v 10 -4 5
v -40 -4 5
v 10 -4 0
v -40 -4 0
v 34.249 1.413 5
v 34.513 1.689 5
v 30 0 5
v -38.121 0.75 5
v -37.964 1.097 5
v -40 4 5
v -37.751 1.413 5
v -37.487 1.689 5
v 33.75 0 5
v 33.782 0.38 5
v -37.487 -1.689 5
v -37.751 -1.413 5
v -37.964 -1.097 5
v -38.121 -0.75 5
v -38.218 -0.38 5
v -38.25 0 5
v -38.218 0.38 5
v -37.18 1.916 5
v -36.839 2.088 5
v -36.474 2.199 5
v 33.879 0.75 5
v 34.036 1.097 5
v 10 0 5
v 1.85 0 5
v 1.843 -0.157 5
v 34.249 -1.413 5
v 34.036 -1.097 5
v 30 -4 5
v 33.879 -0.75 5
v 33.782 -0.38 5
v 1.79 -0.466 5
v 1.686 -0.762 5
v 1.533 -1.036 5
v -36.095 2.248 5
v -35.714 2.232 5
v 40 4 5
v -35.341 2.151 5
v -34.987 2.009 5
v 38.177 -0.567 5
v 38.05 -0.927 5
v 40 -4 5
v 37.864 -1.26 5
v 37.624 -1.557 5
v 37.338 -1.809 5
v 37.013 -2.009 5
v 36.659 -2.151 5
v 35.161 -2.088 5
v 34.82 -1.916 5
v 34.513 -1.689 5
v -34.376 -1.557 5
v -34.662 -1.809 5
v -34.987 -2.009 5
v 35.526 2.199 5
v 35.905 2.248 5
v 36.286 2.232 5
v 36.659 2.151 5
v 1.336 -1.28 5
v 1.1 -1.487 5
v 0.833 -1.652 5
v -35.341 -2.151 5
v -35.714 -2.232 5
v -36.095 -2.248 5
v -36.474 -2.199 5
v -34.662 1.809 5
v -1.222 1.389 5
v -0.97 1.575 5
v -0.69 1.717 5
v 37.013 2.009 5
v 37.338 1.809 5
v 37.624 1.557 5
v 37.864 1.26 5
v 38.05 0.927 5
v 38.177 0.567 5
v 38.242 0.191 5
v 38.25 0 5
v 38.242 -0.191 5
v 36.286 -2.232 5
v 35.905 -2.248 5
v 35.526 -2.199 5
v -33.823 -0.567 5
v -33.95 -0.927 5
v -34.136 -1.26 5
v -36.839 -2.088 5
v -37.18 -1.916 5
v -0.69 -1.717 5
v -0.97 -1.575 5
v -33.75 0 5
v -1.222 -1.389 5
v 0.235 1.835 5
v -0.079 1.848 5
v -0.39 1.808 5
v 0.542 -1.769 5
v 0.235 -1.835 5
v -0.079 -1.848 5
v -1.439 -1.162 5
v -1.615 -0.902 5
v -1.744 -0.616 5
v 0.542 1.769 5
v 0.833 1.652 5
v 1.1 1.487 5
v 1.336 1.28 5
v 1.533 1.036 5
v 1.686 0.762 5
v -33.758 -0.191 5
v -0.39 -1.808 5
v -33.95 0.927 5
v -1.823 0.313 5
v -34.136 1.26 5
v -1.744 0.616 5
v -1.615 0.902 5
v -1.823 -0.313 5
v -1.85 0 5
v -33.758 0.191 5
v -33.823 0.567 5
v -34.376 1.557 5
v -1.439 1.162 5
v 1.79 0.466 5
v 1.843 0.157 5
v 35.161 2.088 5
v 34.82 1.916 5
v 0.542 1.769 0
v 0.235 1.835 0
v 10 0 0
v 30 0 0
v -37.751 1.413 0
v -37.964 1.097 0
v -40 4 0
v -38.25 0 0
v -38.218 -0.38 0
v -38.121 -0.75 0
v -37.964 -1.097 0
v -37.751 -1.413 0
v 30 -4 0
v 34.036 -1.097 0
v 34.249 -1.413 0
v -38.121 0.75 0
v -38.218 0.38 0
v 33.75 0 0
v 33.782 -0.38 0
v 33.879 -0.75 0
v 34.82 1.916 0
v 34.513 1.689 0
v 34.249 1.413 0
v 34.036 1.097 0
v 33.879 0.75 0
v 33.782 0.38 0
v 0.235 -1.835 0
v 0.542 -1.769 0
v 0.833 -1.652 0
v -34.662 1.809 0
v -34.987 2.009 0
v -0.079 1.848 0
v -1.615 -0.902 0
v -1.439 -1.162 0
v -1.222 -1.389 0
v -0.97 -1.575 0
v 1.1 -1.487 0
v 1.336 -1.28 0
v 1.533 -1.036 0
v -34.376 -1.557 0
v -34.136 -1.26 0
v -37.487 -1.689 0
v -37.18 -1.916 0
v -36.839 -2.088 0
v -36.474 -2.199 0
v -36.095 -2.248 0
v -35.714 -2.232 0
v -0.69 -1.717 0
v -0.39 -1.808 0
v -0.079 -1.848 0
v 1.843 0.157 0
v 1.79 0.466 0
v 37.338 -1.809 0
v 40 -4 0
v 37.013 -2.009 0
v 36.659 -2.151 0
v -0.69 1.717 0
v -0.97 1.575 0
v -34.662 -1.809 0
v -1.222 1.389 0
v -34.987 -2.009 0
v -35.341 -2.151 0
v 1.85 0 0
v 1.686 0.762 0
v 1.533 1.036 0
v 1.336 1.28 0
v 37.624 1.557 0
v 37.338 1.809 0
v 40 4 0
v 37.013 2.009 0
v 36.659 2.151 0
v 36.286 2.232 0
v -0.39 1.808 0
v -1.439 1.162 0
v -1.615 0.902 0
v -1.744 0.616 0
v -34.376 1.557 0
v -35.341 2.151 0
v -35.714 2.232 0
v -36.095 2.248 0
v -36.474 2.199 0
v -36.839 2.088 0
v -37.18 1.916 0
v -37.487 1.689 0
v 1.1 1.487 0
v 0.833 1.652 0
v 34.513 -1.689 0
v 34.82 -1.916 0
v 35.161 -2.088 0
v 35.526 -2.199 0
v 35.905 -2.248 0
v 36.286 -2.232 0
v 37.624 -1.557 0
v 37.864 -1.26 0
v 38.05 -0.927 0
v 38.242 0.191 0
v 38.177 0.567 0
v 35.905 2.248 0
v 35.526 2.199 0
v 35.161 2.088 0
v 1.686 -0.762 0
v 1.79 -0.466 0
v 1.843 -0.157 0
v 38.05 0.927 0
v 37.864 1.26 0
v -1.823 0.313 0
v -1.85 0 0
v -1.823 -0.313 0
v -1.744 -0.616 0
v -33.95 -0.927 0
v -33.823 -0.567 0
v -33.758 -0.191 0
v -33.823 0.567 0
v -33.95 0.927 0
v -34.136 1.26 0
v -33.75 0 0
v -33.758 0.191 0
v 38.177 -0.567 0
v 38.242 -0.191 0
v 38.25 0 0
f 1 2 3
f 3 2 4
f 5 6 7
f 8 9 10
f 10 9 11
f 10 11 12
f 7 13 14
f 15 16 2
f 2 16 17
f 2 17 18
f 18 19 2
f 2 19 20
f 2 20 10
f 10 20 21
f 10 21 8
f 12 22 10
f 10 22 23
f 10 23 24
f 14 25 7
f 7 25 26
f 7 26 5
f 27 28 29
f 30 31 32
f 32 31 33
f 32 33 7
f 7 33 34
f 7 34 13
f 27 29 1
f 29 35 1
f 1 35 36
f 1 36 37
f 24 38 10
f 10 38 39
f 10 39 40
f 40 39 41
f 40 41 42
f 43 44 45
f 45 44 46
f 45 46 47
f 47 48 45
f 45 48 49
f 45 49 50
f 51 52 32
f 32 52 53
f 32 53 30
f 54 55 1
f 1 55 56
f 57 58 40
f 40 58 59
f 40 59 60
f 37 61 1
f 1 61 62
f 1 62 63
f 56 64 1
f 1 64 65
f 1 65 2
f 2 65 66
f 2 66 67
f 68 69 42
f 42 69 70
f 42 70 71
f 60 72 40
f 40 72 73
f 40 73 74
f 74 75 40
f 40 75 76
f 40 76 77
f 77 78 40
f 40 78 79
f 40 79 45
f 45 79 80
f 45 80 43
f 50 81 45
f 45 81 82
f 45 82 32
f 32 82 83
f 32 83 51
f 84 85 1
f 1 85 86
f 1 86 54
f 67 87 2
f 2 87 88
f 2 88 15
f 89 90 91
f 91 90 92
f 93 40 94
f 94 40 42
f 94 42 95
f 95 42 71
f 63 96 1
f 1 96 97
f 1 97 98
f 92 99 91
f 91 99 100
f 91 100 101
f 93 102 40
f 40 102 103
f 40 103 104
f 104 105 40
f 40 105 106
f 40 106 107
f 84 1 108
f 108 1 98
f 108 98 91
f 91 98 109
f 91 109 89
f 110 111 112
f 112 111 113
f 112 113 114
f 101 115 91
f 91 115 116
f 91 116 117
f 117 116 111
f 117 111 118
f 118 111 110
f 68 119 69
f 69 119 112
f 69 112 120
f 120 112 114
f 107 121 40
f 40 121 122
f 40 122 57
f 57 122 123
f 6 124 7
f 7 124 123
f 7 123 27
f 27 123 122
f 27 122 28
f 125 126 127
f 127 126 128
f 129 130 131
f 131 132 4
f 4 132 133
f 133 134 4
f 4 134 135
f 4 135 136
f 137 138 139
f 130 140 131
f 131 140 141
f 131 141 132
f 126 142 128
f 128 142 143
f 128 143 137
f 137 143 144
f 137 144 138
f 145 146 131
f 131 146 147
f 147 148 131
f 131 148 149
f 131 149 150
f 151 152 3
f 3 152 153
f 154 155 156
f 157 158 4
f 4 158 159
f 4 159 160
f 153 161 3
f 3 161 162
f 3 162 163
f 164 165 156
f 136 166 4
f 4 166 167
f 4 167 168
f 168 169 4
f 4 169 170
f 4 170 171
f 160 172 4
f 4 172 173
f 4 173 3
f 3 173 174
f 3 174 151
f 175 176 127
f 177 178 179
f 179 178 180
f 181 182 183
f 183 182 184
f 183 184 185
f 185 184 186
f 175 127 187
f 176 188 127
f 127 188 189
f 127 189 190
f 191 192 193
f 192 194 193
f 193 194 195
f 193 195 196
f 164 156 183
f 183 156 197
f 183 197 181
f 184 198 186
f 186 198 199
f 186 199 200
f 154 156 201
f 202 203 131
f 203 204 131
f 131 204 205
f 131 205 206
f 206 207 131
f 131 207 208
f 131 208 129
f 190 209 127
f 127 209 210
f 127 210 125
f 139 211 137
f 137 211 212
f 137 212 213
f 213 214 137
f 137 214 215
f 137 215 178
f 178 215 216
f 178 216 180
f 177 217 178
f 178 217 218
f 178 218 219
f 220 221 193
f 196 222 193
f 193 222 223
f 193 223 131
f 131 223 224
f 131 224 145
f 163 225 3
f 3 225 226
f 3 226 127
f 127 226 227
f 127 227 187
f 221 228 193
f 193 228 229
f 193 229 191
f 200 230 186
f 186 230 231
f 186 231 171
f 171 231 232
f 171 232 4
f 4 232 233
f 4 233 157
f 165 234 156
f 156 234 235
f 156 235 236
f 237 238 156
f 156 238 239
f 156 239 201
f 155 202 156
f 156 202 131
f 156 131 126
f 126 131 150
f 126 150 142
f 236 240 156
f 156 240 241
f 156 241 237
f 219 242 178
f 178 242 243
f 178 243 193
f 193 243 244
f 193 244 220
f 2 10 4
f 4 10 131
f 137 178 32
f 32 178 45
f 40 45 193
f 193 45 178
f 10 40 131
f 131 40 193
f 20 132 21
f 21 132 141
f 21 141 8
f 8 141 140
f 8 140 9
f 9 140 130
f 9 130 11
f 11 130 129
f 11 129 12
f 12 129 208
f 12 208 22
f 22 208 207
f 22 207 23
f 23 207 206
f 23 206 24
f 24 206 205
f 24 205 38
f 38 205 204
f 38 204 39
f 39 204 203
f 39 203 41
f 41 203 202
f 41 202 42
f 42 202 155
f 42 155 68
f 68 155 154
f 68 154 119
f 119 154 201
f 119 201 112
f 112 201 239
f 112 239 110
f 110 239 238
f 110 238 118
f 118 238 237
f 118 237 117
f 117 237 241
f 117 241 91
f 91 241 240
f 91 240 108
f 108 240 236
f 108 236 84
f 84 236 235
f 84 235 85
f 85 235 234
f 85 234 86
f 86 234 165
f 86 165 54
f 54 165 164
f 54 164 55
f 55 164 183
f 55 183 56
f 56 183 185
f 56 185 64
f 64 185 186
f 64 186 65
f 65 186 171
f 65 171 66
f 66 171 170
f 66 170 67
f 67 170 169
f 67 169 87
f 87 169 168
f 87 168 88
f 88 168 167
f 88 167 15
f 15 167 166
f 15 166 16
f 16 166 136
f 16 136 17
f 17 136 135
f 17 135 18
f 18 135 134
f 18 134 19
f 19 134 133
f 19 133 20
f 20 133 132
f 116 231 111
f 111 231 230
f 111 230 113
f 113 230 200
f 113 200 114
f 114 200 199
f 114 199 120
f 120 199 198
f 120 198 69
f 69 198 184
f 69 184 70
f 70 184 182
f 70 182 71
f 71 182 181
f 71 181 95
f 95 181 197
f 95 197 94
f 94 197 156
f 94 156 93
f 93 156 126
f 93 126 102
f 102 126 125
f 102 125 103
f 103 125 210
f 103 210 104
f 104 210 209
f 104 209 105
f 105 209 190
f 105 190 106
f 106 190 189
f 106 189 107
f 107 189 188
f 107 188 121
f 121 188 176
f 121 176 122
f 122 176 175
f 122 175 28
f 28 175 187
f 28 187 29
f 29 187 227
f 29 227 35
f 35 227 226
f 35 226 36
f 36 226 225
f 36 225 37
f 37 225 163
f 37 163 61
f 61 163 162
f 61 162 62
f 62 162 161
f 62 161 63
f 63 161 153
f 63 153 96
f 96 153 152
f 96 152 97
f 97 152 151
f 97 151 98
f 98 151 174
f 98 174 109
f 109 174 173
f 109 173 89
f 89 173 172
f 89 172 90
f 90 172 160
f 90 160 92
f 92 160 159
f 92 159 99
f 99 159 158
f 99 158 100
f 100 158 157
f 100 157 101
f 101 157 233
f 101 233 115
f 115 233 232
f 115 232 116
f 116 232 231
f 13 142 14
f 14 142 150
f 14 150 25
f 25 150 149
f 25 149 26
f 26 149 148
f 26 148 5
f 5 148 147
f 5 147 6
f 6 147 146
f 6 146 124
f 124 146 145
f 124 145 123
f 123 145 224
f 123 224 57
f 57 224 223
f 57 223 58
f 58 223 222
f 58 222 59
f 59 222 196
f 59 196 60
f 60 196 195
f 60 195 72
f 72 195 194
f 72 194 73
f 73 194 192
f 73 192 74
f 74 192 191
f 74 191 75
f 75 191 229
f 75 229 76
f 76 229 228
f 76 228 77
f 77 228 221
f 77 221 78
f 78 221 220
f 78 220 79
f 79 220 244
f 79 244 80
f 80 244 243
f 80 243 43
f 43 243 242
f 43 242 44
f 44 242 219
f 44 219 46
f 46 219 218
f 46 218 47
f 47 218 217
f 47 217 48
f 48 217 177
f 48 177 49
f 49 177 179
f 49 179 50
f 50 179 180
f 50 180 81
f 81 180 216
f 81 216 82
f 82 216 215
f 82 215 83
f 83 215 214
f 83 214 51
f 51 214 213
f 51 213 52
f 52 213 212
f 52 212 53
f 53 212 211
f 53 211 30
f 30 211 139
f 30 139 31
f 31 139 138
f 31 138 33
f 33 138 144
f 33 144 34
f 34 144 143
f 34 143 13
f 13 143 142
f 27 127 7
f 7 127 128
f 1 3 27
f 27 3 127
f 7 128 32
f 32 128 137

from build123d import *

# Parameters (mm, degrees)
SCHIZZO1_W                   = 80
SCHIZZO1_H                   = 8
SCHIZZO1_R                   = 2.25
SCHIZZO1_R_2                 = 1.85
ESTRUSIONE_ESTRUSIONE1_DEPTH = 5
SCHIZZO2_W                   = 20
SCHIZZO2_H                   = 4
TAGLIO_ESTRUSIONE1_DEPTH     = 8


with BuildPart() as part:
    # Schizzo1 → Estrusione-Estrusione1 (new body)
    with BuildSketch(Plane.XY):
        Rectangle(SCHIZZO1_W, SCHIZZO1_H)
        with Locations((-36, 0)):
            Circle(SCHIZZO1_R, mode=Mode.SUBTRACT)
        Circle(SCHIZZO1_R_2, mode=Mode.SUBTRACT)
        with Locations((36, 0)):
            Circle(SCHIZZO1_R, mode=Mode.SUBTRACT)
    extrude(amount=ESTRUSIONE_ESTRUSIONE1_DEPTH)

    # Schizzo2 → Taglio-Estrusione1 (cut)
    with BuildSketch(Plane.XY.offset(5)):
        with Locations((20, -2)):
            Rectangle(SCHIZZO2_W, SCHIZZO2_H)
    extrude(amount=-TAGLIO_ESTRUSIONE1_DEPTH, mode=Mode.SUBTRACT)


solid = part.part
